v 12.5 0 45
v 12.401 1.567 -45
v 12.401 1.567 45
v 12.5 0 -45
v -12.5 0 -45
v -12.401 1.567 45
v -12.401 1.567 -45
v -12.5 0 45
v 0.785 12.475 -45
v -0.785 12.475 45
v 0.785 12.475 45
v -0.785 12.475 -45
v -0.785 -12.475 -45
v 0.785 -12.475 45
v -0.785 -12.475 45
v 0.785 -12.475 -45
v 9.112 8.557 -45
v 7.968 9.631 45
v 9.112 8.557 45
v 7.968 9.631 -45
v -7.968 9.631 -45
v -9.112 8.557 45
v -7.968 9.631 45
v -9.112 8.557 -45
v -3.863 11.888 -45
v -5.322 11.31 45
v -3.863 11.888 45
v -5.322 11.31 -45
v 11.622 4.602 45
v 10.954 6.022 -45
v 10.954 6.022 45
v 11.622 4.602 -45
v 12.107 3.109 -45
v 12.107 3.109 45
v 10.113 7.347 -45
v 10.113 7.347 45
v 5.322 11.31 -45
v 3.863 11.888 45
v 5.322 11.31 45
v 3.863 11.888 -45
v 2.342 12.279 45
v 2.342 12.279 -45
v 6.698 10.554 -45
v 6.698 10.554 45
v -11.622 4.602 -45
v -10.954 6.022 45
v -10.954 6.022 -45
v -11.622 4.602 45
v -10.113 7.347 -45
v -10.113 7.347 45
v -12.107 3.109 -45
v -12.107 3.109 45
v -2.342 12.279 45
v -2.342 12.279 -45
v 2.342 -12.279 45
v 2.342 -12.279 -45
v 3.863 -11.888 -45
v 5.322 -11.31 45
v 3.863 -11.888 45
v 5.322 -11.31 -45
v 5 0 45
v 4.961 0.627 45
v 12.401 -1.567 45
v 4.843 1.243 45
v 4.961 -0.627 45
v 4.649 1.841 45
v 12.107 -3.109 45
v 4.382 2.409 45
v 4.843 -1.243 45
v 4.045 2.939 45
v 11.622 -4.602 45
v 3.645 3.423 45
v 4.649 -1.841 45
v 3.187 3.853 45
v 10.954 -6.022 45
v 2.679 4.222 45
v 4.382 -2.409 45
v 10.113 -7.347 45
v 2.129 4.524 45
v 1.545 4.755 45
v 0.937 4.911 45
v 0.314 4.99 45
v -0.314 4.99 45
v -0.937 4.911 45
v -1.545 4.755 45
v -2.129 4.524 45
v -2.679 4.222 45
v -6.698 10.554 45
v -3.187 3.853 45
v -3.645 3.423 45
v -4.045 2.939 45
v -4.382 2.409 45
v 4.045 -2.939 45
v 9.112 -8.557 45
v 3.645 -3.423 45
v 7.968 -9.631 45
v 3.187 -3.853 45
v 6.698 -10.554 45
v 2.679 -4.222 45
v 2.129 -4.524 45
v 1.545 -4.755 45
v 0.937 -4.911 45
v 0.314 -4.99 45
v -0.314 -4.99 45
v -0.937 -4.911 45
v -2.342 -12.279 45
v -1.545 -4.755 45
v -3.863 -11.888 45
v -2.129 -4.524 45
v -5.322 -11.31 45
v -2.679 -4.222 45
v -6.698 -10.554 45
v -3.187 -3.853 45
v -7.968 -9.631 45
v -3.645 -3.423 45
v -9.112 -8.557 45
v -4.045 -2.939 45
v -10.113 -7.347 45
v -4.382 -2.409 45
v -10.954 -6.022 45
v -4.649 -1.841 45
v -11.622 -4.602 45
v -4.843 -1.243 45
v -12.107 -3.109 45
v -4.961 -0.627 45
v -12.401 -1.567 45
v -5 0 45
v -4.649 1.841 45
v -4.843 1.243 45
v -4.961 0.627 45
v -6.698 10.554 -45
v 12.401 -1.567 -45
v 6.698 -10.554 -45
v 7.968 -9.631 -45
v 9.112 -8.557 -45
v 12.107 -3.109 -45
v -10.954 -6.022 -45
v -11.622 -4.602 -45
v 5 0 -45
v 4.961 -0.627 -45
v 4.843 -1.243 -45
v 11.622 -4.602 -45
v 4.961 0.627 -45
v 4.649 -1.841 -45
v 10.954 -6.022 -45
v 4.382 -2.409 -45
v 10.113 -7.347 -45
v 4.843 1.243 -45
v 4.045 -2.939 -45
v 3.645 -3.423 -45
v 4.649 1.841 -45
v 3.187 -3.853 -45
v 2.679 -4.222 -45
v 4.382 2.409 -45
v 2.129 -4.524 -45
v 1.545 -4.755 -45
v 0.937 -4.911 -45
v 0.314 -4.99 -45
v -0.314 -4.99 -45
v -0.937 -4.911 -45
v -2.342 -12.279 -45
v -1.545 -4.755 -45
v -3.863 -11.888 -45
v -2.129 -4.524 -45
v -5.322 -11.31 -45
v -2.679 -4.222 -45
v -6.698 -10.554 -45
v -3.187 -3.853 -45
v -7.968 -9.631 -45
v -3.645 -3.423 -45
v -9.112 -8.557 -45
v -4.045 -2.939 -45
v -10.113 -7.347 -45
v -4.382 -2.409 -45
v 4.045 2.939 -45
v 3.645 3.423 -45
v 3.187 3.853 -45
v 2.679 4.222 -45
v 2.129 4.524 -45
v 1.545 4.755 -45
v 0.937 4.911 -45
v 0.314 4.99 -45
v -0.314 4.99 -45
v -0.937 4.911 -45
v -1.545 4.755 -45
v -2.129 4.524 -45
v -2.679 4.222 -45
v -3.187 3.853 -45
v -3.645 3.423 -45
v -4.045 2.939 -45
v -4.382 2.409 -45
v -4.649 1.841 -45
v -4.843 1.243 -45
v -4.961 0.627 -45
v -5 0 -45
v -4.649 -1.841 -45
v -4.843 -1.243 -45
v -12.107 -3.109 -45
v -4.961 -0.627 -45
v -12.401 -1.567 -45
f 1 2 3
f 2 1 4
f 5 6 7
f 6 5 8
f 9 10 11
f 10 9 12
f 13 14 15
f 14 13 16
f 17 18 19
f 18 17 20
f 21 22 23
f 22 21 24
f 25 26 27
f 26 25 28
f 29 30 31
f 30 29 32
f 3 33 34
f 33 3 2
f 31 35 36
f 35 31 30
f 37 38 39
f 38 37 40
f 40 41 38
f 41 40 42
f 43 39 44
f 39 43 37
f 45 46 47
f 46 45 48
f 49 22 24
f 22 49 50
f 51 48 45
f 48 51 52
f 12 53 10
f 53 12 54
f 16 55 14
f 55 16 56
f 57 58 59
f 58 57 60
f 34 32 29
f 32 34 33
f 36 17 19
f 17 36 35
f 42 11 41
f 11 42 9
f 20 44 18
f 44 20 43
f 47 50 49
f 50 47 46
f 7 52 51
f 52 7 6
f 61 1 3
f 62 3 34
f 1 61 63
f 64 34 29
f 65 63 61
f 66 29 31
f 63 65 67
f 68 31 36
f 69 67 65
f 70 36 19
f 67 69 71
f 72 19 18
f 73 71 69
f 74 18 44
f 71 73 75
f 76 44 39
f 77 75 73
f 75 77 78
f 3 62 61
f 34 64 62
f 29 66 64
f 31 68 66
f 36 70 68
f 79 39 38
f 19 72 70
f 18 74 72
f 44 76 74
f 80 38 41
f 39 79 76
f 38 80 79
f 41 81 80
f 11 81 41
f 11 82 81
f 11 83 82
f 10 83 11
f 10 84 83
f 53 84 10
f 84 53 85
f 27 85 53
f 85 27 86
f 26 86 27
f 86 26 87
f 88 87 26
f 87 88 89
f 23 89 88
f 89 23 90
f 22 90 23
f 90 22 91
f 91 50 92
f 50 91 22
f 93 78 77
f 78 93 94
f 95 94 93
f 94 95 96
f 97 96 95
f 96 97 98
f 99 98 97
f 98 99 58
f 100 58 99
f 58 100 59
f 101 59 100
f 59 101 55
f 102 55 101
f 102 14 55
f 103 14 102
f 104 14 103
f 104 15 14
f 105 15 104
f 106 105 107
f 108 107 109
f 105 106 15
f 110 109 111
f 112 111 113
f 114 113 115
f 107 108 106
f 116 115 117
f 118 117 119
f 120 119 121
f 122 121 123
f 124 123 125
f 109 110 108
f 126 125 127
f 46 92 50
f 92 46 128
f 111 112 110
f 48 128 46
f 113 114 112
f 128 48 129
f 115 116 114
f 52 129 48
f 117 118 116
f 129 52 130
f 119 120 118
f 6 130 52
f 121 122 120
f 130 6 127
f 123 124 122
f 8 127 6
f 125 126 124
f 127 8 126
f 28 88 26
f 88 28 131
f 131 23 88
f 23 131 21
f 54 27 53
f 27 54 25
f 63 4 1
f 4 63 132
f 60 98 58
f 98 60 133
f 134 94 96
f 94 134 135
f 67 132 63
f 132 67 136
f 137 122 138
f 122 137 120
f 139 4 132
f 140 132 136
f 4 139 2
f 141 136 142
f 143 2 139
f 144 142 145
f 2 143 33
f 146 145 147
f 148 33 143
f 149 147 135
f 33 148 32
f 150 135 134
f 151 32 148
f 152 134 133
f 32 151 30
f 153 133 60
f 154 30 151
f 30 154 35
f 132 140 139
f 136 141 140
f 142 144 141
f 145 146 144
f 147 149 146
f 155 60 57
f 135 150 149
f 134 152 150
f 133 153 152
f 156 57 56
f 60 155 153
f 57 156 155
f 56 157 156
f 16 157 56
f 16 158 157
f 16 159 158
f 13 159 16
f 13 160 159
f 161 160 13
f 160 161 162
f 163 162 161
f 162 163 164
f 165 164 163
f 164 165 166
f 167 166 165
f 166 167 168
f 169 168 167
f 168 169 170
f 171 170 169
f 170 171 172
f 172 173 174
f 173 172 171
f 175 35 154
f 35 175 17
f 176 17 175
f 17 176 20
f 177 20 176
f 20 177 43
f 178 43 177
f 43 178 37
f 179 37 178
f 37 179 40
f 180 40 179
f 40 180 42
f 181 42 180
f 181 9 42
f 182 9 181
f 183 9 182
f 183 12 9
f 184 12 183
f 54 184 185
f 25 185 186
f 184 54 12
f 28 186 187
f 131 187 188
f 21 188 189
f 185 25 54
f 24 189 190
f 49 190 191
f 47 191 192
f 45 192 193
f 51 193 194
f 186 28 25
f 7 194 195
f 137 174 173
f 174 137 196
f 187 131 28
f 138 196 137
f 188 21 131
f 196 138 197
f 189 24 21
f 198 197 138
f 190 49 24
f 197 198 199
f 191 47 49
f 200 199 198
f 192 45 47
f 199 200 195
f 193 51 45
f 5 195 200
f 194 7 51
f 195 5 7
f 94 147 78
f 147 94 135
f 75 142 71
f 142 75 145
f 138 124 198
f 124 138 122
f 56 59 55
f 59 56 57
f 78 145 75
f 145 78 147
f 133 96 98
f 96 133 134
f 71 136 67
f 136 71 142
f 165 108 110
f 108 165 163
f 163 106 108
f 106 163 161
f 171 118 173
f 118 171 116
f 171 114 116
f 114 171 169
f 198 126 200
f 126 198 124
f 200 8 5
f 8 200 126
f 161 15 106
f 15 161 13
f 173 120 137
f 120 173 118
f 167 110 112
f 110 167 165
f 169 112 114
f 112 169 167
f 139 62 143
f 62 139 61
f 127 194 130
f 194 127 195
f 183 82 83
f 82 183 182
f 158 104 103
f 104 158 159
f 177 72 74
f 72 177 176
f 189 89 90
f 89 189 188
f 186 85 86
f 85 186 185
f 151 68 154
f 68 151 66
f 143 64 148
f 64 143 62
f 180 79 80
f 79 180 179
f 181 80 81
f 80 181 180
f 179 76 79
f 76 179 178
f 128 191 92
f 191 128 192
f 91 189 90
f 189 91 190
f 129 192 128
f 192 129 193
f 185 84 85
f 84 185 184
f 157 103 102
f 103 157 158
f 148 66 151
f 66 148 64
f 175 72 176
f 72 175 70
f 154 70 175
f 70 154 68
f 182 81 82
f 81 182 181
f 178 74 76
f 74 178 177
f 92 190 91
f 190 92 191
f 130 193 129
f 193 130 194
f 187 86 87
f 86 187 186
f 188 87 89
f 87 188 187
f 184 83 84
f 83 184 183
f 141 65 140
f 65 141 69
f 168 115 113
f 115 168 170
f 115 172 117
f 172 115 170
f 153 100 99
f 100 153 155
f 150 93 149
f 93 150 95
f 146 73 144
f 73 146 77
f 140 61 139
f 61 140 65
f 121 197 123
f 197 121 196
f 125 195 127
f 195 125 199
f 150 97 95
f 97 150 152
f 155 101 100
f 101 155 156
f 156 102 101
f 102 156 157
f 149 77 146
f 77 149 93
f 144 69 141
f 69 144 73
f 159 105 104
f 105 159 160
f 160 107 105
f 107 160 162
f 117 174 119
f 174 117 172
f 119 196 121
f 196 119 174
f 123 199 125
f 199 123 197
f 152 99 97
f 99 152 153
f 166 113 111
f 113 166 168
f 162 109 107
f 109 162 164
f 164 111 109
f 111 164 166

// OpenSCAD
$fn = 50;


difference() {
	union() {
		translate(v = [0, 0, -45.0000000000]) {
			cylinder(h = 90, r = 12.5000000000);
		}
	}
	union() {
		translate(v = [0, 0, -100.0000000000]) {
			cylinder(h = 200, r = 5);
		}
	}
}
